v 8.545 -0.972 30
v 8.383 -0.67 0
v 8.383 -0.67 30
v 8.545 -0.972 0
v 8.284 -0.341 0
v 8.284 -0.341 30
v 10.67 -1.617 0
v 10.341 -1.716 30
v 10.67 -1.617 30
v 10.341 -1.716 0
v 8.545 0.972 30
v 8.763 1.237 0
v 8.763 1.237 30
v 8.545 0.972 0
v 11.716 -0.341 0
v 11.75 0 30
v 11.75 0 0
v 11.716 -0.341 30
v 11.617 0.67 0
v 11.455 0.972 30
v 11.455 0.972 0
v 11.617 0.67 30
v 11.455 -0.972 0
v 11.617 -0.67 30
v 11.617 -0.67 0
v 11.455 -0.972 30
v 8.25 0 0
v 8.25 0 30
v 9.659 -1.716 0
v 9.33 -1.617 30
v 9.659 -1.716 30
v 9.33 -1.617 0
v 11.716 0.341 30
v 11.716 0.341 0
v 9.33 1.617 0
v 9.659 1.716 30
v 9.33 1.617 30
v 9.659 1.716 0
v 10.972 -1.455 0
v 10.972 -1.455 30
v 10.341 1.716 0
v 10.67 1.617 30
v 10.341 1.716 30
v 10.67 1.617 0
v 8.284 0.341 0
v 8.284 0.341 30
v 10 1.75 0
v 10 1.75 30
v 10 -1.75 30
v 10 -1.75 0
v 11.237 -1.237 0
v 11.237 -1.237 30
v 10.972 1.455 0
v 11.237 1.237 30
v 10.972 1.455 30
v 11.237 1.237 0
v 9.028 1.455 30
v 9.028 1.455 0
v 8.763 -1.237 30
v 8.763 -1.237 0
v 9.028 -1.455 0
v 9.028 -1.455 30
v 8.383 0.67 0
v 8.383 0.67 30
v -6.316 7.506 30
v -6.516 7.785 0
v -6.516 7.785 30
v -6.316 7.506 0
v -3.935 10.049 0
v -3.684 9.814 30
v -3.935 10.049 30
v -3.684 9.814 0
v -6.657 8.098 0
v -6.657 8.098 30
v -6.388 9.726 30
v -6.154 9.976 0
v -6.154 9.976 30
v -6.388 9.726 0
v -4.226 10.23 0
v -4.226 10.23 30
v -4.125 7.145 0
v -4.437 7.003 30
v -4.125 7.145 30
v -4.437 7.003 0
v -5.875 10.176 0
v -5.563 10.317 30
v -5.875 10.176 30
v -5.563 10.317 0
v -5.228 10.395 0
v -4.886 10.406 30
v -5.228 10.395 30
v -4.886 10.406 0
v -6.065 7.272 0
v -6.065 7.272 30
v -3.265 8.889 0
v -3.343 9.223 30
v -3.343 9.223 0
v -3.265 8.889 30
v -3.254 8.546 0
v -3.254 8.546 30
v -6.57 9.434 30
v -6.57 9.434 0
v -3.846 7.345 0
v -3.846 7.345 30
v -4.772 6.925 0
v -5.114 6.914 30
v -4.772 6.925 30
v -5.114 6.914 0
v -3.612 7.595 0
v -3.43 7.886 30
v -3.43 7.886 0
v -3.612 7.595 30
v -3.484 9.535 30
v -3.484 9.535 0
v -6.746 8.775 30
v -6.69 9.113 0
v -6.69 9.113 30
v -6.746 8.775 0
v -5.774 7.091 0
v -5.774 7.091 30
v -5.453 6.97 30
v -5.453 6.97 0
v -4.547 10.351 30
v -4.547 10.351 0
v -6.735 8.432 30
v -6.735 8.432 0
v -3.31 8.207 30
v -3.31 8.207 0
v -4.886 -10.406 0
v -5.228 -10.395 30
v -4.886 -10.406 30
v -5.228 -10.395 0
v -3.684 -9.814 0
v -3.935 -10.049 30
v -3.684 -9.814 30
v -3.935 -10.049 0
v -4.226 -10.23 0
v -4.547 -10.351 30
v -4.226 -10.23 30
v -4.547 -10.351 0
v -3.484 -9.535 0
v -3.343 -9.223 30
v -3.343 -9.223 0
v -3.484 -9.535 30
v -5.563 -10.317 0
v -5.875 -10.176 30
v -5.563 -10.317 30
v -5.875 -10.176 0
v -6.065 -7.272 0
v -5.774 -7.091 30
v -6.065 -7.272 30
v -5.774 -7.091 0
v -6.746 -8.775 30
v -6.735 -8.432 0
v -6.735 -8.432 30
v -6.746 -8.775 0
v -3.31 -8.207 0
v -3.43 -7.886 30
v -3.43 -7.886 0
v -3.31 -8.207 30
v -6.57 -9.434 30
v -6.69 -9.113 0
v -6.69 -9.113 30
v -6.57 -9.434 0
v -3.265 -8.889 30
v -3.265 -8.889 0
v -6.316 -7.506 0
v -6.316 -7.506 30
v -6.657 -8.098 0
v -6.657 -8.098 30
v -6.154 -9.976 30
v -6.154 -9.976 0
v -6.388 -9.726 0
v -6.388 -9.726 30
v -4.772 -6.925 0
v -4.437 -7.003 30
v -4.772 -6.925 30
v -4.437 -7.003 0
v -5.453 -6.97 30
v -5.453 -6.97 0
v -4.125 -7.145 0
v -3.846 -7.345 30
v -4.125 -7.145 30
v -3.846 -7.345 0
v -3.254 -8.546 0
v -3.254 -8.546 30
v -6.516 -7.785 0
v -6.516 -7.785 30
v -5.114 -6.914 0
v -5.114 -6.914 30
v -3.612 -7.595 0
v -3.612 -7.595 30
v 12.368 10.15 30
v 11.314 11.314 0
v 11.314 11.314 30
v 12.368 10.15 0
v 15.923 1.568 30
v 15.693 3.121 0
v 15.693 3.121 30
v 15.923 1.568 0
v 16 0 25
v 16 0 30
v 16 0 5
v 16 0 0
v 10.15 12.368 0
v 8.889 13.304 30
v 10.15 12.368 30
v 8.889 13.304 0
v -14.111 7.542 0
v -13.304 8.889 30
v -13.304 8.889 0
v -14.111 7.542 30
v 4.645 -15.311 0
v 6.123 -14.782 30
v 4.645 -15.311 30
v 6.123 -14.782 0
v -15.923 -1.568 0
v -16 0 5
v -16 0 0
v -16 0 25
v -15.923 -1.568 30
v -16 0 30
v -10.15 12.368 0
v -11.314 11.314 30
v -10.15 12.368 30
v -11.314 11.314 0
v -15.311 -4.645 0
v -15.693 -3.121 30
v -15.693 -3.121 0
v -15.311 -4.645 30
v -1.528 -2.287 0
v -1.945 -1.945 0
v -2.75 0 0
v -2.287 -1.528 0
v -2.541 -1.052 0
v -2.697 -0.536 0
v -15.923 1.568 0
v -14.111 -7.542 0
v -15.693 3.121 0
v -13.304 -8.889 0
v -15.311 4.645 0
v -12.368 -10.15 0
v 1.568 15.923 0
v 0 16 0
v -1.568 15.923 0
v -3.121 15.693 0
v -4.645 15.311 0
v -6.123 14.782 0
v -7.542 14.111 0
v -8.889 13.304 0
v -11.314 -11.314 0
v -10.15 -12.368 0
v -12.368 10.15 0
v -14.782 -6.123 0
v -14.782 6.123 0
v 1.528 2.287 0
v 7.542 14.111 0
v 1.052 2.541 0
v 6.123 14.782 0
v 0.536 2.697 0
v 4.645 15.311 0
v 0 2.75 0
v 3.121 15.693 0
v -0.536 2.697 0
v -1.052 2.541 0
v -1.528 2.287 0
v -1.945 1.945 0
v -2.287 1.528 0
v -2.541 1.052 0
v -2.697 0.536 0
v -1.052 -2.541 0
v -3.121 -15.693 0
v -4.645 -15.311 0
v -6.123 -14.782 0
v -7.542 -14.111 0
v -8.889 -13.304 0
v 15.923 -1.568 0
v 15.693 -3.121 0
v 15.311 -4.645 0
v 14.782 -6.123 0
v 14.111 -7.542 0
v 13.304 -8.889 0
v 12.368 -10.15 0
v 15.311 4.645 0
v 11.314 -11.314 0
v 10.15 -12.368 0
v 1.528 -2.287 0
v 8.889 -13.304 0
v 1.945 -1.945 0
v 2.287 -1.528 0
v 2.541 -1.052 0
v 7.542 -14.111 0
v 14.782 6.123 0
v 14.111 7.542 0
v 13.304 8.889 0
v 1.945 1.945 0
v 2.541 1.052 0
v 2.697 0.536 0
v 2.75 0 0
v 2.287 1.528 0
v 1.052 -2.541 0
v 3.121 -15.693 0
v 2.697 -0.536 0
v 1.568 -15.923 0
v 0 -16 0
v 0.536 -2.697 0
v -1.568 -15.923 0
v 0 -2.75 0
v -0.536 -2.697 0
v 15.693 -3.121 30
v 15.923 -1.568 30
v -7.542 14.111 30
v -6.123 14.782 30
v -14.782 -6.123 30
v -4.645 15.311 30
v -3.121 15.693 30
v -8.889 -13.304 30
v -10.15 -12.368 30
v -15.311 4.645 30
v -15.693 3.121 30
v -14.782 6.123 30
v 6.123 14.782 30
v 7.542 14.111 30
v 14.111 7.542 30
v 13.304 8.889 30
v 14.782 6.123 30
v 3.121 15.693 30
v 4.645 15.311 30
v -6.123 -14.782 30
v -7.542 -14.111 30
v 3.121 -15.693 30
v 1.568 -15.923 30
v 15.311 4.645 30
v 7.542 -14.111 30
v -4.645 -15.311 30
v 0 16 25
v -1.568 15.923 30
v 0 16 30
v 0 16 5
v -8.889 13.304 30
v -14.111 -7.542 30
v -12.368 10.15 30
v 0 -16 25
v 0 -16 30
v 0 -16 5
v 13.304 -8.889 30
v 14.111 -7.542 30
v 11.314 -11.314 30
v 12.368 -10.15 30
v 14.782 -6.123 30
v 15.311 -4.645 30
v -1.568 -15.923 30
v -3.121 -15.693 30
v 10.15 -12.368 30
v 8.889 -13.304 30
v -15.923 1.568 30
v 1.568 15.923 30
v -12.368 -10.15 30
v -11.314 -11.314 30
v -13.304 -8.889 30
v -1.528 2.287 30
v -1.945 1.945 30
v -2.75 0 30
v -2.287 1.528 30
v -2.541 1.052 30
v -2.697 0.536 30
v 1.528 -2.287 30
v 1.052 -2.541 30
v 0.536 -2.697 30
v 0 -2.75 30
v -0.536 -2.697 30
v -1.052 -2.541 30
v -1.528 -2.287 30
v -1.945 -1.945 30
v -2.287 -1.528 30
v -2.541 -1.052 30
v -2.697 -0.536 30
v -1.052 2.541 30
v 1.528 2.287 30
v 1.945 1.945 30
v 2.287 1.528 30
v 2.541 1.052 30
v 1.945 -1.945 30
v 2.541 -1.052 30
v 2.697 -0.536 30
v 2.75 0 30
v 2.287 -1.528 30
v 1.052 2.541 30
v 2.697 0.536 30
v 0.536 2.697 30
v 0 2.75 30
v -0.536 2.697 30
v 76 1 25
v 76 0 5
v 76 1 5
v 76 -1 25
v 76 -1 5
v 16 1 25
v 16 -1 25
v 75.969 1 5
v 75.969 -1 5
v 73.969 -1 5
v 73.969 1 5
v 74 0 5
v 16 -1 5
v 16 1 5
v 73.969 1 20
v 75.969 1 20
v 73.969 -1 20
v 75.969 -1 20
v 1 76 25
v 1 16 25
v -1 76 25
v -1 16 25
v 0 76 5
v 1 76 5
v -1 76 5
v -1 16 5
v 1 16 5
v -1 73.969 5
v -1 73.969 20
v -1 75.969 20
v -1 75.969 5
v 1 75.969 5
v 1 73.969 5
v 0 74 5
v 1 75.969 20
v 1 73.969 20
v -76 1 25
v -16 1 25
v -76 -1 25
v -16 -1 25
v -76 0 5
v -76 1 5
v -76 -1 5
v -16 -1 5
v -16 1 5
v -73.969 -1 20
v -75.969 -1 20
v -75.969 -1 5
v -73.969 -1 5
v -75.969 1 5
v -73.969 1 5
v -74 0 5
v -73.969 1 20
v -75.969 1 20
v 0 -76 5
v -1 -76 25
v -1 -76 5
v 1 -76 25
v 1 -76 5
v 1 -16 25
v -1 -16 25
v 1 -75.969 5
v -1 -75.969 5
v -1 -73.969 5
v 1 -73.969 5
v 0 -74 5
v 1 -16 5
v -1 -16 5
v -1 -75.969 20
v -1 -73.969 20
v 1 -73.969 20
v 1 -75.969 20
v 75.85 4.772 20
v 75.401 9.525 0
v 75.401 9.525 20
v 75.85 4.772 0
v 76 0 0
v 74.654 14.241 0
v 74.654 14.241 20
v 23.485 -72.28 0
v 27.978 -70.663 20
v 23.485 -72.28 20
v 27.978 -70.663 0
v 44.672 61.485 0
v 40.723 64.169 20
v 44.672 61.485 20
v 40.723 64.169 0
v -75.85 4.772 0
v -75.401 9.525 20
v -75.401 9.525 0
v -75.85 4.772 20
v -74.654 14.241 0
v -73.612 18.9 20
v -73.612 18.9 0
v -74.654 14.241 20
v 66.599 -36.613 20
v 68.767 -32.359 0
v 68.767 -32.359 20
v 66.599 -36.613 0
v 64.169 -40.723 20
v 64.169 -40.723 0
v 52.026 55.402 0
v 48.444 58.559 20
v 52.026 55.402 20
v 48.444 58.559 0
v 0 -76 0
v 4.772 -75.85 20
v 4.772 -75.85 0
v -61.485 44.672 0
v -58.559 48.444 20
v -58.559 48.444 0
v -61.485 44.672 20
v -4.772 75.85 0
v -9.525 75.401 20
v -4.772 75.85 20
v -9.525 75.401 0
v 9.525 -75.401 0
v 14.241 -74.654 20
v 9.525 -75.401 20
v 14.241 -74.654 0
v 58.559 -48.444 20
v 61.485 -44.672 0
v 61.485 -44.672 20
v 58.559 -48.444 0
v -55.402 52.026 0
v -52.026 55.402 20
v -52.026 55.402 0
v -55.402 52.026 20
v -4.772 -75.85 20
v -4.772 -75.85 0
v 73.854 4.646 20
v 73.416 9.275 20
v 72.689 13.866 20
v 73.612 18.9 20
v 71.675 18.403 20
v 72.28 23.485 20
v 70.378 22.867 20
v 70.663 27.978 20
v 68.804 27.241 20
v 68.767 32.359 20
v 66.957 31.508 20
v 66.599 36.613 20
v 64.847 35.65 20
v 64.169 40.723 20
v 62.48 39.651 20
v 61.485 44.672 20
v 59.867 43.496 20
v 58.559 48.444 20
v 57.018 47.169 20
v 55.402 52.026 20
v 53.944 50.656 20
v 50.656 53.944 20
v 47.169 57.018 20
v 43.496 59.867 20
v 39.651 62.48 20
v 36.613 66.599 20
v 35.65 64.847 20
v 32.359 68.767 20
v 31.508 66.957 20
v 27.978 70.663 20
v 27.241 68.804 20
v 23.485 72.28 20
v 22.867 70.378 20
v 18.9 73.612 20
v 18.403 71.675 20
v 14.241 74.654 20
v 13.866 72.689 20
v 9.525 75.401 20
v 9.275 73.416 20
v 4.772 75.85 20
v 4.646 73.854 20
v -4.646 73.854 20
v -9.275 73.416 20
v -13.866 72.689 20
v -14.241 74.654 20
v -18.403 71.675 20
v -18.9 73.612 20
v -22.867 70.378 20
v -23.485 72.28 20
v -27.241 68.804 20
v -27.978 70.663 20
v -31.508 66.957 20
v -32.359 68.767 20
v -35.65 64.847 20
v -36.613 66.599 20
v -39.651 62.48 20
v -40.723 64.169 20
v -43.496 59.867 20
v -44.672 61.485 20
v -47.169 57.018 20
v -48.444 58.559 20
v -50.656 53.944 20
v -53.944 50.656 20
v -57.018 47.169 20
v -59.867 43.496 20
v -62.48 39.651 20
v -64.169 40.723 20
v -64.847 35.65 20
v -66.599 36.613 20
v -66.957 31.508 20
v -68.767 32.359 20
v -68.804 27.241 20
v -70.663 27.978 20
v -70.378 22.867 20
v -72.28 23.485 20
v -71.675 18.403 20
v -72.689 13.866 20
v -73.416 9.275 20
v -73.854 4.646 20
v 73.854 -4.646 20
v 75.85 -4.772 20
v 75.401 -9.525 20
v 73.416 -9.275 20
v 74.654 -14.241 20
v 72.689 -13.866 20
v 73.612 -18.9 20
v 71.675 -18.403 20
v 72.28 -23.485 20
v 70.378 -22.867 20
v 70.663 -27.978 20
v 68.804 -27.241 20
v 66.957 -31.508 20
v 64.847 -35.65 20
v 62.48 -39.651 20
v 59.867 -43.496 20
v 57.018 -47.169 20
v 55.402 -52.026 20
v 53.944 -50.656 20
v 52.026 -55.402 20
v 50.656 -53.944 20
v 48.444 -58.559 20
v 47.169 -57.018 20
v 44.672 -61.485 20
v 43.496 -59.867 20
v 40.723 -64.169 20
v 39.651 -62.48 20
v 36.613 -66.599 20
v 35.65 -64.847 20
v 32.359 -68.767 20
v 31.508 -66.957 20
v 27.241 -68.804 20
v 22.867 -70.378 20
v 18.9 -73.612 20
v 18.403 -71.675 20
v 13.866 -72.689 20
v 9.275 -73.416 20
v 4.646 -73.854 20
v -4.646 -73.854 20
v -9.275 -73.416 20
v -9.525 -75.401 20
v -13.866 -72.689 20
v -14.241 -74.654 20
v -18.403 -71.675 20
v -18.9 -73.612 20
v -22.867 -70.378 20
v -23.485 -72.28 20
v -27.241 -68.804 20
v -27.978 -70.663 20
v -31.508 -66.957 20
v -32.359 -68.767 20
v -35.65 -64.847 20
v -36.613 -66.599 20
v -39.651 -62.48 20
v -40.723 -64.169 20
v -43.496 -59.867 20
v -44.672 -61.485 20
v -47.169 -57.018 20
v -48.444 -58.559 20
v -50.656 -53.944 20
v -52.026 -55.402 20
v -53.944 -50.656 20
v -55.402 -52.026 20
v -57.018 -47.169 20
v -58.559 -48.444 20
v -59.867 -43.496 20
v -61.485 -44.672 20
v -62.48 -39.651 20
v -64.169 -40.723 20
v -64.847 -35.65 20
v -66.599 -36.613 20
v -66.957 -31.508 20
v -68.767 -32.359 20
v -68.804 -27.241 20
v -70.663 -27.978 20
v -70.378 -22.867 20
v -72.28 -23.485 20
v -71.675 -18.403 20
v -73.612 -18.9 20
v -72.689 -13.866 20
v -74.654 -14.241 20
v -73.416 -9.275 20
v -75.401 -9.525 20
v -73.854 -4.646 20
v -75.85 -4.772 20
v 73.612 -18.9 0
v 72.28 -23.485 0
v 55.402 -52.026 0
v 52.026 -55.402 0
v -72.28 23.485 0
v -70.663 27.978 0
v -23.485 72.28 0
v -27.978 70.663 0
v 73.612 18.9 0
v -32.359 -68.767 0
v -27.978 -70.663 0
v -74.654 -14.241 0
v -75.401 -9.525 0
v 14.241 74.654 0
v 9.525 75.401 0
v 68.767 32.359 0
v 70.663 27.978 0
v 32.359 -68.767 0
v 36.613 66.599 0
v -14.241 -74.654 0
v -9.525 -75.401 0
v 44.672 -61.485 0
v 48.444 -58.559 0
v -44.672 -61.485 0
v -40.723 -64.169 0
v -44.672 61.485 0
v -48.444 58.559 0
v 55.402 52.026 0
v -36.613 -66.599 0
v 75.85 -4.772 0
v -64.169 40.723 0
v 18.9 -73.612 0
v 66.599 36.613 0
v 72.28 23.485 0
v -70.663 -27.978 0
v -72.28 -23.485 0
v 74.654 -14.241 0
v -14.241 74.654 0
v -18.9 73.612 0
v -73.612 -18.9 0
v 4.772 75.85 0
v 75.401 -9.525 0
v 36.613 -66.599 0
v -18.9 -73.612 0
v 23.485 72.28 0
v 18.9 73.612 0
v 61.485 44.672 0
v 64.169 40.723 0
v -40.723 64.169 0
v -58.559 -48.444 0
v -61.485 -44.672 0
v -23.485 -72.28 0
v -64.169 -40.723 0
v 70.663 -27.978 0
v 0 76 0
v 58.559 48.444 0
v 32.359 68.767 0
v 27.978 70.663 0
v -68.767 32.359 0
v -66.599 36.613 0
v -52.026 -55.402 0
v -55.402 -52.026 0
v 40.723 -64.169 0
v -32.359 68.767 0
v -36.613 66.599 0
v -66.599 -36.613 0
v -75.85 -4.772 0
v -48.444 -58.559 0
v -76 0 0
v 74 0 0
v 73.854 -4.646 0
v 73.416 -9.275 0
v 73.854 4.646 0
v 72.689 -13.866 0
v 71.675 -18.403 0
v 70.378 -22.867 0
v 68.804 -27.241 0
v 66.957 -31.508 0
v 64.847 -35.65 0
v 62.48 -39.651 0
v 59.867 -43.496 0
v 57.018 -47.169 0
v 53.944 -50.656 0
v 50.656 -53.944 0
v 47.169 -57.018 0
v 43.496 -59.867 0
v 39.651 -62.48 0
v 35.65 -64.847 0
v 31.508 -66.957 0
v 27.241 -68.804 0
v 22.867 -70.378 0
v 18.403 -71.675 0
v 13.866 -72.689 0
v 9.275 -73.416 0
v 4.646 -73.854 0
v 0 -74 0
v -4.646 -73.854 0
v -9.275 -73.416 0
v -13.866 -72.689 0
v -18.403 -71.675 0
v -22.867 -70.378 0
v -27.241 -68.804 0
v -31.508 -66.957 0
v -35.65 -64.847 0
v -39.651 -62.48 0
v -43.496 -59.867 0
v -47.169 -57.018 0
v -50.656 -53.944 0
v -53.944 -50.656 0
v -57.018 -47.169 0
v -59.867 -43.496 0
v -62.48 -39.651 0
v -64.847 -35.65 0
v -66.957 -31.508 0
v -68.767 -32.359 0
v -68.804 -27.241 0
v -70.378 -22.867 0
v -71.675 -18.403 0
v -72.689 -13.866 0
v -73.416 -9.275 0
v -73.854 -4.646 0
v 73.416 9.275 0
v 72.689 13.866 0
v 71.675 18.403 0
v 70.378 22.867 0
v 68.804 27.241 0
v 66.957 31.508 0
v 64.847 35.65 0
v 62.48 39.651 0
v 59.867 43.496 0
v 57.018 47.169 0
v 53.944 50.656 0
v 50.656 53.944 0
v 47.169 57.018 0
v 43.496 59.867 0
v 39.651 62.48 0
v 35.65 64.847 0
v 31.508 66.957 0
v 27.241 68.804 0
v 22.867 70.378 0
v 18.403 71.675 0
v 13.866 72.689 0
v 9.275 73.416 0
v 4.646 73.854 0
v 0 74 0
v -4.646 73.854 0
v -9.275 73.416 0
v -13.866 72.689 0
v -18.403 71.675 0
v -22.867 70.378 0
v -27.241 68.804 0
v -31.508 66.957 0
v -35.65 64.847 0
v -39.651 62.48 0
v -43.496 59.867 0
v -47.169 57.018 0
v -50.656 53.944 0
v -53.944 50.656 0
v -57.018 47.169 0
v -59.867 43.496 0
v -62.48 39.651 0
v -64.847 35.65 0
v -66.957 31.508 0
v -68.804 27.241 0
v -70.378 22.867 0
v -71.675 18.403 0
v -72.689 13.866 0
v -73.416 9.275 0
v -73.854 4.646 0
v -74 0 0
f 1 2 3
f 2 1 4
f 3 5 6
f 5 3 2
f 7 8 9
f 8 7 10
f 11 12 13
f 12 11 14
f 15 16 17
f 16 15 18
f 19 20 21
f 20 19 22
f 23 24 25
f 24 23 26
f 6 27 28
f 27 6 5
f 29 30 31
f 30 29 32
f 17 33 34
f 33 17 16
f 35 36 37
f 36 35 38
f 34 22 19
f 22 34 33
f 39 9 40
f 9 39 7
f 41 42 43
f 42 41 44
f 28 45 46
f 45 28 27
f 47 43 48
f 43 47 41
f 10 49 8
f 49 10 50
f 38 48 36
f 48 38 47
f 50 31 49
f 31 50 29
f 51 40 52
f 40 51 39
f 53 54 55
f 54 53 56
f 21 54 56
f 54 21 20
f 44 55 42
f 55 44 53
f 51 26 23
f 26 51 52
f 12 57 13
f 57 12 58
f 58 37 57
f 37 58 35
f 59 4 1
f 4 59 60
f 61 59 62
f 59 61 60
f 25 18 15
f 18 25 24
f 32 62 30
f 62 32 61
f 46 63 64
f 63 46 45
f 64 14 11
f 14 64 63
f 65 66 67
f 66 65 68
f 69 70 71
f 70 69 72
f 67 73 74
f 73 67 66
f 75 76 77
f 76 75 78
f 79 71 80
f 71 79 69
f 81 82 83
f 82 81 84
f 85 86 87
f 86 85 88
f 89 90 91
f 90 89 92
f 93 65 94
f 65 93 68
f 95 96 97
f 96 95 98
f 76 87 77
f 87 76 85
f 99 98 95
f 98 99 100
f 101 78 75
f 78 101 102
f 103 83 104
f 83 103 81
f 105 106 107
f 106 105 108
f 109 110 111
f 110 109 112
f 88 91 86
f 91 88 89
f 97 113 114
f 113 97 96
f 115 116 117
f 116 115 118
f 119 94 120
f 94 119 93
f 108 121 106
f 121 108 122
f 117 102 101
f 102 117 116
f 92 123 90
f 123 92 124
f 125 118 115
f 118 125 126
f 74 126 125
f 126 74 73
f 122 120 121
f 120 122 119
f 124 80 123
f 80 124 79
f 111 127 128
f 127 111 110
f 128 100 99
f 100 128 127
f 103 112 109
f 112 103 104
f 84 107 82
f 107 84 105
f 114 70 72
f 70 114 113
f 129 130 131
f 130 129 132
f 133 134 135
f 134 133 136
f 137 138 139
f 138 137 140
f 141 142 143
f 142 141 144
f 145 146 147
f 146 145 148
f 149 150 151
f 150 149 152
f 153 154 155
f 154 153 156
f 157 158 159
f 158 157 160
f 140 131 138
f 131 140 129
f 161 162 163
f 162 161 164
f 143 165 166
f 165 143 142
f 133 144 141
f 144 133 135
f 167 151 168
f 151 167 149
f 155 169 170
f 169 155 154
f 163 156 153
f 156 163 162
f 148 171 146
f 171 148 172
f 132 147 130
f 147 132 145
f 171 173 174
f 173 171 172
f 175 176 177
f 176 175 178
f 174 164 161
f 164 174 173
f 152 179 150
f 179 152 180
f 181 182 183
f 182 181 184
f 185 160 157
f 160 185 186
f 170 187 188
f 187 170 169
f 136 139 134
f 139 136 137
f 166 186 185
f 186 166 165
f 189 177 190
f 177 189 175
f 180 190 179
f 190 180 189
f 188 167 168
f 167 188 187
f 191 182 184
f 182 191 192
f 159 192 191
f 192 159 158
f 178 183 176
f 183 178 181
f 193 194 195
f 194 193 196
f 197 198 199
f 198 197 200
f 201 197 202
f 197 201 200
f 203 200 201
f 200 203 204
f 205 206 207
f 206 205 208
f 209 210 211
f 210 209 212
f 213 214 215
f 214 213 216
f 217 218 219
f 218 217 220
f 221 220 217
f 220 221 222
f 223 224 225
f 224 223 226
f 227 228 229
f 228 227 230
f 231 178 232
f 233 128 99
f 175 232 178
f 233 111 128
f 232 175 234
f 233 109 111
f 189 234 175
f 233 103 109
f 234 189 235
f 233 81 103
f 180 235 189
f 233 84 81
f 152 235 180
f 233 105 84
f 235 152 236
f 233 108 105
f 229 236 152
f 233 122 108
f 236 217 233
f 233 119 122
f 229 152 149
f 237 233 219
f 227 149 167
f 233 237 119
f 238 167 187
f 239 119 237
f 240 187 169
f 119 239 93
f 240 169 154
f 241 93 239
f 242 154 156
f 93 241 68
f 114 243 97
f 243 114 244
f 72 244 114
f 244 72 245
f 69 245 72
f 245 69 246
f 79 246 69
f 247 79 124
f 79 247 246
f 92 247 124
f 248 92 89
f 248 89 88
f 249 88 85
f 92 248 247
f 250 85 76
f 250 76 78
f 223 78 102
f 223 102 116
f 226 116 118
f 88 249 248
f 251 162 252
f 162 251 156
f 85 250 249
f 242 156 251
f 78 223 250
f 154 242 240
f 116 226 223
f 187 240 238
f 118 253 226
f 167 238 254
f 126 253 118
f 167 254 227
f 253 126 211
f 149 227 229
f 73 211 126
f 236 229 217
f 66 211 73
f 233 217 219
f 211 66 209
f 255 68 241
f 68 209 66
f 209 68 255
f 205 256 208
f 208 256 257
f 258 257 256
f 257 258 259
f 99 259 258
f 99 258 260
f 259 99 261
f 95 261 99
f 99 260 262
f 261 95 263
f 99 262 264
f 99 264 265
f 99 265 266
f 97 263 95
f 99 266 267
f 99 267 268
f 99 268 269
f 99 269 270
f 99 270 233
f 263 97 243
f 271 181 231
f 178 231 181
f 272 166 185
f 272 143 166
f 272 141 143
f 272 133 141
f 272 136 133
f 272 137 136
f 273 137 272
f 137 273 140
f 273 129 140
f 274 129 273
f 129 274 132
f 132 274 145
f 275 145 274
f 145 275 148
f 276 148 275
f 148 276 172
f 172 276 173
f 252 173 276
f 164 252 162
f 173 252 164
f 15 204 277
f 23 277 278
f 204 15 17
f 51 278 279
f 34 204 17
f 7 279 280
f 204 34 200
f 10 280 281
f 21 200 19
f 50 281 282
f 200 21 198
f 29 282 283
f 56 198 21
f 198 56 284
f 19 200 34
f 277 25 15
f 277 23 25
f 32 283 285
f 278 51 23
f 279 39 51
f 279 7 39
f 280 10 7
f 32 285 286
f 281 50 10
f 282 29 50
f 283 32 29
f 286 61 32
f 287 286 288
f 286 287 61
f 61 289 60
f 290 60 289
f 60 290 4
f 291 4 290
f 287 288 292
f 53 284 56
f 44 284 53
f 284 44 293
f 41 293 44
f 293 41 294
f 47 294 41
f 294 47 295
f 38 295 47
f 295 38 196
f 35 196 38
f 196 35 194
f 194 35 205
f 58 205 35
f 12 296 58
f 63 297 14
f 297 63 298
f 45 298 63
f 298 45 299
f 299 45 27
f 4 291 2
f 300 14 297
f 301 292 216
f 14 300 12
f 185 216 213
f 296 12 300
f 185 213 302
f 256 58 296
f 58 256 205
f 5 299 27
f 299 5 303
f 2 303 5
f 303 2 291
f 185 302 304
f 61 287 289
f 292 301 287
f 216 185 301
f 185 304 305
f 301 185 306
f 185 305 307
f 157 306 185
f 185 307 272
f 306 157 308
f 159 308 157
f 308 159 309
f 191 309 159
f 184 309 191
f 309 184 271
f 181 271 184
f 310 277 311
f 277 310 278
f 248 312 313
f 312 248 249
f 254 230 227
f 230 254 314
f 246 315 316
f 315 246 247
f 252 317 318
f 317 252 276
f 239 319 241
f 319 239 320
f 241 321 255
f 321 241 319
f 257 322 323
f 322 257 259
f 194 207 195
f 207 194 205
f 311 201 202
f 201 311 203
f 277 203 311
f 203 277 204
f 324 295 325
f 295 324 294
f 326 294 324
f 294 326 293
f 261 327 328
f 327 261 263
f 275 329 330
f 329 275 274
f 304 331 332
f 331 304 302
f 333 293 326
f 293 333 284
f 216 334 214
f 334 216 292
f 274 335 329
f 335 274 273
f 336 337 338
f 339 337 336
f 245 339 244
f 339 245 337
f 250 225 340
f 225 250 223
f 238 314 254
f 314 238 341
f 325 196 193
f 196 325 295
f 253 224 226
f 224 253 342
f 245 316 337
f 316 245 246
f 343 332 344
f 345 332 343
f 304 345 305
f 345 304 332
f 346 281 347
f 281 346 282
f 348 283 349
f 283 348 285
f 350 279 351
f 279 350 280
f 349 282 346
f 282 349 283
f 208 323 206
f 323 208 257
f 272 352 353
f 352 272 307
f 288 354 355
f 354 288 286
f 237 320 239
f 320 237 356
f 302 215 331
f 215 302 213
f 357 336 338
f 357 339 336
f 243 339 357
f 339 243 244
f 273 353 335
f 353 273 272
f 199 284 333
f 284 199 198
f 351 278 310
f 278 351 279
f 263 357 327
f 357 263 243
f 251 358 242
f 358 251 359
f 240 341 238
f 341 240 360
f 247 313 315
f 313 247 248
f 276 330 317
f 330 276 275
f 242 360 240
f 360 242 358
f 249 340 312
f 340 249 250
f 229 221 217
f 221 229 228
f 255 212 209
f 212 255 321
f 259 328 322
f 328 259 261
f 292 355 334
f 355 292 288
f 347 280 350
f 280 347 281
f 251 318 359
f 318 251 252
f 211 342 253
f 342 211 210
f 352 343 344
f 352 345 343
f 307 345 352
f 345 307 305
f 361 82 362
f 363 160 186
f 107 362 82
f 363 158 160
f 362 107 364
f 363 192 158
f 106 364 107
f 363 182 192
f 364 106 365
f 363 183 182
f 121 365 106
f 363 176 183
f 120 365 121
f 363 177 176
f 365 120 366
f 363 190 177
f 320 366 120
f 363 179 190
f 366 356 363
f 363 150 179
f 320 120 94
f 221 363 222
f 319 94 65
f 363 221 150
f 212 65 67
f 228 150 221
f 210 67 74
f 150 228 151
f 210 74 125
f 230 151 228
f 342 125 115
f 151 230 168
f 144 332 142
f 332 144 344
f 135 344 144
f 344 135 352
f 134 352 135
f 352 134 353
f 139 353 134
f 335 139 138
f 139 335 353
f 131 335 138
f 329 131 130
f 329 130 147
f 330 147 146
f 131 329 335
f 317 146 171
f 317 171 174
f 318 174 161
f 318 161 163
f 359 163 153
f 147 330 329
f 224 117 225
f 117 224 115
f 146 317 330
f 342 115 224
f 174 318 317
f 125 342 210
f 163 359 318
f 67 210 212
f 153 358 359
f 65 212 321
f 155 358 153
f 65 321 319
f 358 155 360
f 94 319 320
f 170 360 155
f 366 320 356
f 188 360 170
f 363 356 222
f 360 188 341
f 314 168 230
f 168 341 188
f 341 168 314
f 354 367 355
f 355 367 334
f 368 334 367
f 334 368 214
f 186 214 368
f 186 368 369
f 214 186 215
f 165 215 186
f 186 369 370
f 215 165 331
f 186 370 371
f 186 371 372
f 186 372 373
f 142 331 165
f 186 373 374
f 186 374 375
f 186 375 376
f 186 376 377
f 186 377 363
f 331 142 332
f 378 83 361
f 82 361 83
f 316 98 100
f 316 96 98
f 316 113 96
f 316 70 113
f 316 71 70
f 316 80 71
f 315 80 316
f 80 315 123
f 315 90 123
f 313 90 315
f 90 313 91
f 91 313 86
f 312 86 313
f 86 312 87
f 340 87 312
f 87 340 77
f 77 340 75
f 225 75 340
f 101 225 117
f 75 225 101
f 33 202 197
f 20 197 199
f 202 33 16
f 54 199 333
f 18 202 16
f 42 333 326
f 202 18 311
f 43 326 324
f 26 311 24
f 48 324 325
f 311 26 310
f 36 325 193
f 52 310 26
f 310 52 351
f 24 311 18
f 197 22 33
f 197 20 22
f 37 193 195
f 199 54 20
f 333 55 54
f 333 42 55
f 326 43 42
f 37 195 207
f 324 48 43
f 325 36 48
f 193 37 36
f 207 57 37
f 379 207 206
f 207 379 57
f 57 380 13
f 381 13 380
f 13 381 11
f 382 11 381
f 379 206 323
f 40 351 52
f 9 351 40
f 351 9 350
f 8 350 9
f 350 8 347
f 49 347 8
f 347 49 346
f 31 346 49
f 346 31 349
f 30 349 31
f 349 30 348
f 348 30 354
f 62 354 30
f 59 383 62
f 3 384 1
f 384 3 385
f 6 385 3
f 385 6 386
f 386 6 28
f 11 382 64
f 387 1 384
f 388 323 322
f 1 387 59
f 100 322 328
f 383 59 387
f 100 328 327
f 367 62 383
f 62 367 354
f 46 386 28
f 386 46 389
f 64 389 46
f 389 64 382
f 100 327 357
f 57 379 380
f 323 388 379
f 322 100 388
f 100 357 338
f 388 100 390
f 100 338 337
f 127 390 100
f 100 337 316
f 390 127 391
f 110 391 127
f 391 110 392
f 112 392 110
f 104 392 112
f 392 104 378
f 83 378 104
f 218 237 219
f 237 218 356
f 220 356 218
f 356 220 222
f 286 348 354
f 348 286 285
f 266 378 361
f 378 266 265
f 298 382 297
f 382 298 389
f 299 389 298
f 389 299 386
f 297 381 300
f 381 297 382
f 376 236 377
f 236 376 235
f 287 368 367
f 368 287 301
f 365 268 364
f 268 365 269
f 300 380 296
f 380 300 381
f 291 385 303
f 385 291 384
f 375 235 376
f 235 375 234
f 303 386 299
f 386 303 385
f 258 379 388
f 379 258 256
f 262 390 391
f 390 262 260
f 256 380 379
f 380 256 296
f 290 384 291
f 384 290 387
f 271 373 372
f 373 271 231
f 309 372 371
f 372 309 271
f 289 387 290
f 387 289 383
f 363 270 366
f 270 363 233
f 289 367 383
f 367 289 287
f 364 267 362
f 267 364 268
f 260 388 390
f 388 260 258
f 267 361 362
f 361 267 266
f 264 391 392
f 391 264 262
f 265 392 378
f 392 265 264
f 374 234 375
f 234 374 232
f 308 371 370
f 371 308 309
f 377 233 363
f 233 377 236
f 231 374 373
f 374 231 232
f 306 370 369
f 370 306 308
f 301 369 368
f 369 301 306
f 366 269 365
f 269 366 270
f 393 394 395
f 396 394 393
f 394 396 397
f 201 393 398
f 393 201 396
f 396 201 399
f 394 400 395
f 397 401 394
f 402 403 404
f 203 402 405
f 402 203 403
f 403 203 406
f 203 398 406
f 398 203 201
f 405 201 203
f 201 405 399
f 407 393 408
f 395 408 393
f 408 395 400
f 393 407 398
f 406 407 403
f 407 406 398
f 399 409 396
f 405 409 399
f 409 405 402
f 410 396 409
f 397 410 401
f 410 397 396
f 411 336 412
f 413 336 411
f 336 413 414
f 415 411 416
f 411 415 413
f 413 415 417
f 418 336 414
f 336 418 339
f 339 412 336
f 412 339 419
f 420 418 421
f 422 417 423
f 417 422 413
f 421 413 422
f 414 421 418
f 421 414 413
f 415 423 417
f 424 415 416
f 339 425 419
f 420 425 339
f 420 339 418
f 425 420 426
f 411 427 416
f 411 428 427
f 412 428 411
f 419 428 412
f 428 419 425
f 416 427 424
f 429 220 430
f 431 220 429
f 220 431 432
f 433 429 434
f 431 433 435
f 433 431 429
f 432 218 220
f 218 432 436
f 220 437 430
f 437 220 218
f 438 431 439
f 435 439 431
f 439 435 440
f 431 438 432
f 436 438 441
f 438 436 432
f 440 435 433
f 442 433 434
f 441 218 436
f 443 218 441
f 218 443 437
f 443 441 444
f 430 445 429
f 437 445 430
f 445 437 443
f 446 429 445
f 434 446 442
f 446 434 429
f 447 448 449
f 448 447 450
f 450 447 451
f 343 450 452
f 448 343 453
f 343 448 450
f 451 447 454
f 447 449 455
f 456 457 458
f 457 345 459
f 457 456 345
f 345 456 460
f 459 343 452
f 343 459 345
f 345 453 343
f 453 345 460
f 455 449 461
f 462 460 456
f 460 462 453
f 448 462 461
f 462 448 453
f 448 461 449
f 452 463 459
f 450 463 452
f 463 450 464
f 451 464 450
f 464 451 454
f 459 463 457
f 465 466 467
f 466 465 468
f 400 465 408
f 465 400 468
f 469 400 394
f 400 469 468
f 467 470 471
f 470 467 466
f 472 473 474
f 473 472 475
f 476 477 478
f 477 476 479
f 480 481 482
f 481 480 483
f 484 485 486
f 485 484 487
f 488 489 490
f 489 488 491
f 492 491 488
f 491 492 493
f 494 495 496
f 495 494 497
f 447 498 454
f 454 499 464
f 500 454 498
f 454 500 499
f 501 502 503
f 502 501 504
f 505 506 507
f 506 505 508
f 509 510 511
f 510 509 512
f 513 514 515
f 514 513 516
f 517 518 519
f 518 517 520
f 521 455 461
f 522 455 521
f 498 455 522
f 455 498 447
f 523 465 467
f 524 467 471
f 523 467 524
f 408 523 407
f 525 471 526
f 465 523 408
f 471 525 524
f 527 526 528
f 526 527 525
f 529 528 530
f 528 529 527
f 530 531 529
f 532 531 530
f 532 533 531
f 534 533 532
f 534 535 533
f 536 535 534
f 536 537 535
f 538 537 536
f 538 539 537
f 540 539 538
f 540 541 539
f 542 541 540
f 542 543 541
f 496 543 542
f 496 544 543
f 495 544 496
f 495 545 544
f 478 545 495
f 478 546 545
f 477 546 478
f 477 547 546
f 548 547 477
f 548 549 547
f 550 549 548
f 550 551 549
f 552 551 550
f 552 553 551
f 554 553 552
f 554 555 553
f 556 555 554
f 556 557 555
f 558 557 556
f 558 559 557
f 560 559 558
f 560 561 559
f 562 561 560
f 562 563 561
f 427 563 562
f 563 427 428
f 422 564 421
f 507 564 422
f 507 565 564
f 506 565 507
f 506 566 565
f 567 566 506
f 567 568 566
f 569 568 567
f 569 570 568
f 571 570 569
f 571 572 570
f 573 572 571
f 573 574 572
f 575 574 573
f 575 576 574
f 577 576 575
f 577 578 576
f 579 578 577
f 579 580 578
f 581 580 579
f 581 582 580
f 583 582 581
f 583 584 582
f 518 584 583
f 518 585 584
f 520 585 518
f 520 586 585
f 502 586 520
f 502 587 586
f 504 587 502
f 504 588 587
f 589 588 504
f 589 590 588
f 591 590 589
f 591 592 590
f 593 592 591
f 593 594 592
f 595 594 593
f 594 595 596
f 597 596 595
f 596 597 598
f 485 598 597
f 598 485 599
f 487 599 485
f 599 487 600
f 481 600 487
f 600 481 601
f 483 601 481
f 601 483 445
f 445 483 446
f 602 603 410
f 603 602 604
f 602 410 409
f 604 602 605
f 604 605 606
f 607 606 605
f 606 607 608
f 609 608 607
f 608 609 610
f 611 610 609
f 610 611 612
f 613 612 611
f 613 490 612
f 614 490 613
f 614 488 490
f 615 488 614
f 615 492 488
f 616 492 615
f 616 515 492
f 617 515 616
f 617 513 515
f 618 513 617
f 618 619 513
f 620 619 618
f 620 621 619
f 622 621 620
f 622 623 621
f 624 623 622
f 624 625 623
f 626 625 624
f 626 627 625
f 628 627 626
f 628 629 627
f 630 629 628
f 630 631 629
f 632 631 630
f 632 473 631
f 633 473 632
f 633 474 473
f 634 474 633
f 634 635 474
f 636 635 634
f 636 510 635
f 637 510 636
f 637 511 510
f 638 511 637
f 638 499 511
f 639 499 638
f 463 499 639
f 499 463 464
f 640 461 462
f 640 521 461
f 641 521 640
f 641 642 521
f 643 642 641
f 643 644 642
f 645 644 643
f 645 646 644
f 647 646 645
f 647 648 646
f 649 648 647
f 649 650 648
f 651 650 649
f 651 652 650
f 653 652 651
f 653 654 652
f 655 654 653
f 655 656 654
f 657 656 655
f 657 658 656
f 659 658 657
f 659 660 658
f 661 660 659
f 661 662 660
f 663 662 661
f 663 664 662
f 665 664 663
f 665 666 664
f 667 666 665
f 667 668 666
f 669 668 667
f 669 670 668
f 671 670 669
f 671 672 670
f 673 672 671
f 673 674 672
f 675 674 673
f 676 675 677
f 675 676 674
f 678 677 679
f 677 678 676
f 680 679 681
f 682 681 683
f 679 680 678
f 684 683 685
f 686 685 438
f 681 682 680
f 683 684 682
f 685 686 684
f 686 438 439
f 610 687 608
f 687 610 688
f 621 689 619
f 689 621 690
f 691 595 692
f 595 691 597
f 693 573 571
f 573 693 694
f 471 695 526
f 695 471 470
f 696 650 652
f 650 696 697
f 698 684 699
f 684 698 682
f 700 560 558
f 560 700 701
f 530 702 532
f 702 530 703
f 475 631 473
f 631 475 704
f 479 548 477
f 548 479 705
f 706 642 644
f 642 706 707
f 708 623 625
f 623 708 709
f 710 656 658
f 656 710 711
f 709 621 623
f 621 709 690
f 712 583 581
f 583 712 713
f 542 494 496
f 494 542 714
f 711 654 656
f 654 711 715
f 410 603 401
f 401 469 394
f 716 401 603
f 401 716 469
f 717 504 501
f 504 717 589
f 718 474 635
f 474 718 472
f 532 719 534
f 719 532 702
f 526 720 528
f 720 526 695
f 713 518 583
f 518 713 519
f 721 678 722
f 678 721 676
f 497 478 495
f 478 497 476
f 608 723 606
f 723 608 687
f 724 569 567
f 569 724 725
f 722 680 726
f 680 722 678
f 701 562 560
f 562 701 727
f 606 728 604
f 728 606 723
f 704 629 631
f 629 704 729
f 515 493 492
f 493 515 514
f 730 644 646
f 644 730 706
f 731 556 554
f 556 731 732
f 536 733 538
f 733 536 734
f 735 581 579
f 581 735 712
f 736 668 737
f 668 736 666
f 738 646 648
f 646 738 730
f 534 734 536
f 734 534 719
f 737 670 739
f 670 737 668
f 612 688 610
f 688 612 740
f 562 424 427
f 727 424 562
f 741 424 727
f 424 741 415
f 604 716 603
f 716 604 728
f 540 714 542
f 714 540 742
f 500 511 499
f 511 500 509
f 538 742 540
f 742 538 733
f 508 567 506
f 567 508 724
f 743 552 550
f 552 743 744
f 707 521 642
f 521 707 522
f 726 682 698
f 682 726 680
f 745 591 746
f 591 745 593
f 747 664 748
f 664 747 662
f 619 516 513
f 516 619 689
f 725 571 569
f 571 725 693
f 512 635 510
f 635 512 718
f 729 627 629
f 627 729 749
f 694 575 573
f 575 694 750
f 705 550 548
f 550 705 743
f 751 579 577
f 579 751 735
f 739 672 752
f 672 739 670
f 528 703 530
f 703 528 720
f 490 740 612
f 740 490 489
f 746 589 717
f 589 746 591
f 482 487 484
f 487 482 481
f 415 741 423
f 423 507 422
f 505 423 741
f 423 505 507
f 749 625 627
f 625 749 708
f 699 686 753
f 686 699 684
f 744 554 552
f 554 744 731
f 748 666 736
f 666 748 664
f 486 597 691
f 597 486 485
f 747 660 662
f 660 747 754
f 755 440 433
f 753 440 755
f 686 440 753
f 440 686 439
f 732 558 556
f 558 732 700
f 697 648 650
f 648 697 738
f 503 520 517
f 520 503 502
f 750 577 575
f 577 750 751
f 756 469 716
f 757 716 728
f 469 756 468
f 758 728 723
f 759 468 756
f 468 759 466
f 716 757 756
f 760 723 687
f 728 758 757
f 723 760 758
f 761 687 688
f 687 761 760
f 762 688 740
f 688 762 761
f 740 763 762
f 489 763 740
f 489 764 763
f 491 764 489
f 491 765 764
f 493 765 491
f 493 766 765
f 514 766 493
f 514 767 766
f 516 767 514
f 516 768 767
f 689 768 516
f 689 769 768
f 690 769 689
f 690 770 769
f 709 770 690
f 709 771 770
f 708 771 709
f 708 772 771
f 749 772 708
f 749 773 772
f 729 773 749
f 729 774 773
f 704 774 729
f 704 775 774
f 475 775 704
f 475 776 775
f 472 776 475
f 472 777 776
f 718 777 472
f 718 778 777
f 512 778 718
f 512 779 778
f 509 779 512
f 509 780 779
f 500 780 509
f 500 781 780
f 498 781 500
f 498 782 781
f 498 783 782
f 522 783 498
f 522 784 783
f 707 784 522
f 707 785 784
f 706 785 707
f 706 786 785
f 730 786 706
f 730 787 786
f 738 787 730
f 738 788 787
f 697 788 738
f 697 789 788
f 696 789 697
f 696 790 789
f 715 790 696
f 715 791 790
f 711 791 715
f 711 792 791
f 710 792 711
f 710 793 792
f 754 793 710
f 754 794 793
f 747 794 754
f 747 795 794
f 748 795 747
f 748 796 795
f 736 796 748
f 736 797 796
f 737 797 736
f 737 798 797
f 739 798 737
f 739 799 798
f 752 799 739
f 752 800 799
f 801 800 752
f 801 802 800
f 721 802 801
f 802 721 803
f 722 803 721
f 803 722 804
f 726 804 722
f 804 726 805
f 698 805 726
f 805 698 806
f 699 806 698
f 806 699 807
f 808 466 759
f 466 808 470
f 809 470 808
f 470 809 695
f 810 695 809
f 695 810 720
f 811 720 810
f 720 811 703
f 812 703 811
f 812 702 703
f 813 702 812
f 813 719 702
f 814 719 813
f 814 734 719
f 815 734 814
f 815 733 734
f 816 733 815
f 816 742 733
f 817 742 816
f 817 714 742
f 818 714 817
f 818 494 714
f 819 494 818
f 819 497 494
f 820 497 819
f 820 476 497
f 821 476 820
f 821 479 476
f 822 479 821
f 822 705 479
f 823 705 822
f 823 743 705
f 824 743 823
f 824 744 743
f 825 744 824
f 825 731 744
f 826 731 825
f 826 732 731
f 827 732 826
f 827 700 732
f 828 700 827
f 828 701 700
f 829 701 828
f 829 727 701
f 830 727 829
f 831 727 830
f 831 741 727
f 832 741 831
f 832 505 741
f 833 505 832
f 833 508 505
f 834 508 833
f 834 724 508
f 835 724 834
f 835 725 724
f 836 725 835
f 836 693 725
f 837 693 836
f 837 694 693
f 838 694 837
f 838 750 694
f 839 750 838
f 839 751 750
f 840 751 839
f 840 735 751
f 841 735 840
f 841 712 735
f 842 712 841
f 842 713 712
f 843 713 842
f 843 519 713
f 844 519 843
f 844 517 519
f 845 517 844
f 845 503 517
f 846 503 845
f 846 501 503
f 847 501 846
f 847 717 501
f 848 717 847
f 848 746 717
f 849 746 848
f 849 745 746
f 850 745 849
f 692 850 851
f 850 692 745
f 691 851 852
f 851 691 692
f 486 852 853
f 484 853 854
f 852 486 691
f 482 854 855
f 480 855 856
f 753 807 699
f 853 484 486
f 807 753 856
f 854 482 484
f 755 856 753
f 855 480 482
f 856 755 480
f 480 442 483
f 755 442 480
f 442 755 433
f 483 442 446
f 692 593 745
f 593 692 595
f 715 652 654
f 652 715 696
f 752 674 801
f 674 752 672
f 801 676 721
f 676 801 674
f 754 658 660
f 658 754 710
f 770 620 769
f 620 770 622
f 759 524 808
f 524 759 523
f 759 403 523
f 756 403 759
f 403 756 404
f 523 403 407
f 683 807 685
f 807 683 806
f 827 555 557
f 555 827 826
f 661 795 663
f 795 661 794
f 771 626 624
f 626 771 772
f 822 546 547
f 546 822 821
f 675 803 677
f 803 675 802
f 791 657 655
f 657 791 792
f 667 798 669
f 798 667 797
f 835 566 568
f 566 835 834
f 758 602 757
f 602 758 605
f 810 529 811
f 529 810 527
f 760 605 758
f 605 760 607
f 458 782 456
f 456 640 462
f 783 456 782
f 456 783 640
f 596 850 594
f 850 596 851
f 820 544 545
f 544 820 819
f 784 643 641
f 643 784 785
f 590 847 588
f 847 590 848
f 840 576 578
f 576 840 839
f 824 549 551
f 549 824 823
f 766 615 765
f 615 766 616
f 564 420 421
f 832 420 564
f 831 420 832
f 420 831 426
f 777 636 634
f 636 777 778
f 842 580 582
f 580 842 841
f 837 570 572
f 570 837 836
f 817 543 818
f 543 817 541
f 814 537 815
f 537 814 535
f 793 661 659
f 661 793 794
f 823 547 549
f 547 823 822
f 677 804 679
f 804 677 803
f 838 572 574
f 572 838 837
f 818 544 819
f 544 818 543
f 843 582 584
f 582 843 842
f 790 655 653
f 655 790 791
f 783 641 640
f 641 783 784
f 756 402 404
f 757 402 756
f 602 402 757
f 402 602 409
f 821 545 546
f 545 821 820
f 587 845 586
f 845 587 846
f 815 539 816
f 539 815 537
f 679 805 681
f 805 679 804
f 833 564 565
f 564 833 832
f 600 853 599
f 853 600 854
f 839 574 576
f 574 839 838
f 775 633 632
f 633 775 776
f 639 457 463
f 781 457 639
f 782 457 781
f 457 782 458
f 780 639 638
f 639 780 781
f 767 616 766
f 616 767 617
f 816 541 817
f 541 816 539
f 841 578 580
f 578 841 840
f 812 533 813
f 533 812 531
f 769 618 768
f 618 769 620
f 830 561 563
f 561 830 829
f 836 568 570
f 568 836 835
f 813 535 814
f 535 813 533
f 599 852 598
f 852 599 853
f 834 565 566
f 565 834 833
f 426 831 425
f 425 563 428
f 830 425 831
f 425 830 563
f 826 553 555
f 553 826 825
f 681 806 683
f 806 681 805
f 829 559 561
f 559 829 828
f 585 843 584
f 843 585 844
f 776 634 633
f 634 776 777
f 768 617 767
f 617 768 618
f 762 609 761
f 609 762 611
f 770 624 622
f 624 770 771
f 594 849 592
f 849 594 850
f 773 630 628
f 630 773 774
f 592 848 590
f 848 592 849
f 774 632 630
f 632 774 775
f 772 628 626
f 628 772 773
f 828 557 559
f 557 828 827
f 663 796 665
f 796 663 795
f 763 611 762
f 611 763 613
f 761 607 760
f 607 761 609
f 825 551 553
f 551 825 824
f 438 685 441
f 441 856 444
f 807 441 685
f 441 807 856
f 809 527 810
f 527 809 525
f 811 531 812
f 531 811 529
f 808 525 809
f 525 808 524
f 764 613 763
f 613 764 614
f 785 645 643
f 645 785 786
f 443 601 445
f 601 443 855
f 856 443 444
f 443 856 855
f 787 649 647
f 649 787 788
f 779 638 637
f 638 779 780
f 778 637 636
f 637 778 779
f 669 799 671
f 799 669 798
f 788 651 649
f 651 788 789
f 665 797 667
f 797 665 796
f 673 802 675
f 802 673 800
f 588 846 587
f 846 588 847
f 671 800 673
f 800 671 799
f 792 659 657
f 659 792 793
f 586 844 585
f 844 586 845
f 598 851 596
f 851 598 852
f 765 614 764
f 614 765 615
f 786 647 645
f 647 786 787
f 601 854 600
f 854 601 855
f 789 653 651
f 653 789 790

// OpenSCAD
// Secondary Mirror Spider for 114mm Newtonian (副镜十字架)
// 单位: mm

tube_id = 152; // 镜筒内径
hub_dia = 32; // 中心毂直径
hub_height = 30; // 中心毂高度
vane_thickness = 2; // 十字架叶片厚度
vane_height = 20; // 十字架叶片高度

module spider() {
    // 中心毂
    difference() {
        cylinder(d=hub_dia, h=hub_height, $fn=64);
        // 中心主螺丝孔
        translate([0, 0, -1]) cylinder(d=5.5, h=hub_height+2, $fn=32); // 适用 M5 中心固定螺丝
        
        // 三个推力螺丝孔 (用于调节副镜倾角)
        for(i=[0:2]) {
            rotate([0, 0, i*120])
            translate([10, 0, -1])
            cylinder(d=3.5, h=hub_height+2, $fn=32); // 可直接攻丝或自攻 M4 螺丝
        }
    }
    
    // 四个支撑叶片
    for(i=[0:3]) {
        rotate([0, 0, i*90])
        translate([hub_dia/2, -vane_thickness/2, (hub_height-vane_height)/2])
        cube([(tube_id-hub_dia)/2, vane_thickness, vane_height]);
    }
    
    // 外圈固定环 (方便固定在管壁内侧)
    difference() {
        cylinder(d=tube_id, h=vane_height, $fn=100);
        translate([0, 0, -1]) cylinder(d=tube_id-4, h=vane_height+2, $fn=100);
    }
}

spider();
